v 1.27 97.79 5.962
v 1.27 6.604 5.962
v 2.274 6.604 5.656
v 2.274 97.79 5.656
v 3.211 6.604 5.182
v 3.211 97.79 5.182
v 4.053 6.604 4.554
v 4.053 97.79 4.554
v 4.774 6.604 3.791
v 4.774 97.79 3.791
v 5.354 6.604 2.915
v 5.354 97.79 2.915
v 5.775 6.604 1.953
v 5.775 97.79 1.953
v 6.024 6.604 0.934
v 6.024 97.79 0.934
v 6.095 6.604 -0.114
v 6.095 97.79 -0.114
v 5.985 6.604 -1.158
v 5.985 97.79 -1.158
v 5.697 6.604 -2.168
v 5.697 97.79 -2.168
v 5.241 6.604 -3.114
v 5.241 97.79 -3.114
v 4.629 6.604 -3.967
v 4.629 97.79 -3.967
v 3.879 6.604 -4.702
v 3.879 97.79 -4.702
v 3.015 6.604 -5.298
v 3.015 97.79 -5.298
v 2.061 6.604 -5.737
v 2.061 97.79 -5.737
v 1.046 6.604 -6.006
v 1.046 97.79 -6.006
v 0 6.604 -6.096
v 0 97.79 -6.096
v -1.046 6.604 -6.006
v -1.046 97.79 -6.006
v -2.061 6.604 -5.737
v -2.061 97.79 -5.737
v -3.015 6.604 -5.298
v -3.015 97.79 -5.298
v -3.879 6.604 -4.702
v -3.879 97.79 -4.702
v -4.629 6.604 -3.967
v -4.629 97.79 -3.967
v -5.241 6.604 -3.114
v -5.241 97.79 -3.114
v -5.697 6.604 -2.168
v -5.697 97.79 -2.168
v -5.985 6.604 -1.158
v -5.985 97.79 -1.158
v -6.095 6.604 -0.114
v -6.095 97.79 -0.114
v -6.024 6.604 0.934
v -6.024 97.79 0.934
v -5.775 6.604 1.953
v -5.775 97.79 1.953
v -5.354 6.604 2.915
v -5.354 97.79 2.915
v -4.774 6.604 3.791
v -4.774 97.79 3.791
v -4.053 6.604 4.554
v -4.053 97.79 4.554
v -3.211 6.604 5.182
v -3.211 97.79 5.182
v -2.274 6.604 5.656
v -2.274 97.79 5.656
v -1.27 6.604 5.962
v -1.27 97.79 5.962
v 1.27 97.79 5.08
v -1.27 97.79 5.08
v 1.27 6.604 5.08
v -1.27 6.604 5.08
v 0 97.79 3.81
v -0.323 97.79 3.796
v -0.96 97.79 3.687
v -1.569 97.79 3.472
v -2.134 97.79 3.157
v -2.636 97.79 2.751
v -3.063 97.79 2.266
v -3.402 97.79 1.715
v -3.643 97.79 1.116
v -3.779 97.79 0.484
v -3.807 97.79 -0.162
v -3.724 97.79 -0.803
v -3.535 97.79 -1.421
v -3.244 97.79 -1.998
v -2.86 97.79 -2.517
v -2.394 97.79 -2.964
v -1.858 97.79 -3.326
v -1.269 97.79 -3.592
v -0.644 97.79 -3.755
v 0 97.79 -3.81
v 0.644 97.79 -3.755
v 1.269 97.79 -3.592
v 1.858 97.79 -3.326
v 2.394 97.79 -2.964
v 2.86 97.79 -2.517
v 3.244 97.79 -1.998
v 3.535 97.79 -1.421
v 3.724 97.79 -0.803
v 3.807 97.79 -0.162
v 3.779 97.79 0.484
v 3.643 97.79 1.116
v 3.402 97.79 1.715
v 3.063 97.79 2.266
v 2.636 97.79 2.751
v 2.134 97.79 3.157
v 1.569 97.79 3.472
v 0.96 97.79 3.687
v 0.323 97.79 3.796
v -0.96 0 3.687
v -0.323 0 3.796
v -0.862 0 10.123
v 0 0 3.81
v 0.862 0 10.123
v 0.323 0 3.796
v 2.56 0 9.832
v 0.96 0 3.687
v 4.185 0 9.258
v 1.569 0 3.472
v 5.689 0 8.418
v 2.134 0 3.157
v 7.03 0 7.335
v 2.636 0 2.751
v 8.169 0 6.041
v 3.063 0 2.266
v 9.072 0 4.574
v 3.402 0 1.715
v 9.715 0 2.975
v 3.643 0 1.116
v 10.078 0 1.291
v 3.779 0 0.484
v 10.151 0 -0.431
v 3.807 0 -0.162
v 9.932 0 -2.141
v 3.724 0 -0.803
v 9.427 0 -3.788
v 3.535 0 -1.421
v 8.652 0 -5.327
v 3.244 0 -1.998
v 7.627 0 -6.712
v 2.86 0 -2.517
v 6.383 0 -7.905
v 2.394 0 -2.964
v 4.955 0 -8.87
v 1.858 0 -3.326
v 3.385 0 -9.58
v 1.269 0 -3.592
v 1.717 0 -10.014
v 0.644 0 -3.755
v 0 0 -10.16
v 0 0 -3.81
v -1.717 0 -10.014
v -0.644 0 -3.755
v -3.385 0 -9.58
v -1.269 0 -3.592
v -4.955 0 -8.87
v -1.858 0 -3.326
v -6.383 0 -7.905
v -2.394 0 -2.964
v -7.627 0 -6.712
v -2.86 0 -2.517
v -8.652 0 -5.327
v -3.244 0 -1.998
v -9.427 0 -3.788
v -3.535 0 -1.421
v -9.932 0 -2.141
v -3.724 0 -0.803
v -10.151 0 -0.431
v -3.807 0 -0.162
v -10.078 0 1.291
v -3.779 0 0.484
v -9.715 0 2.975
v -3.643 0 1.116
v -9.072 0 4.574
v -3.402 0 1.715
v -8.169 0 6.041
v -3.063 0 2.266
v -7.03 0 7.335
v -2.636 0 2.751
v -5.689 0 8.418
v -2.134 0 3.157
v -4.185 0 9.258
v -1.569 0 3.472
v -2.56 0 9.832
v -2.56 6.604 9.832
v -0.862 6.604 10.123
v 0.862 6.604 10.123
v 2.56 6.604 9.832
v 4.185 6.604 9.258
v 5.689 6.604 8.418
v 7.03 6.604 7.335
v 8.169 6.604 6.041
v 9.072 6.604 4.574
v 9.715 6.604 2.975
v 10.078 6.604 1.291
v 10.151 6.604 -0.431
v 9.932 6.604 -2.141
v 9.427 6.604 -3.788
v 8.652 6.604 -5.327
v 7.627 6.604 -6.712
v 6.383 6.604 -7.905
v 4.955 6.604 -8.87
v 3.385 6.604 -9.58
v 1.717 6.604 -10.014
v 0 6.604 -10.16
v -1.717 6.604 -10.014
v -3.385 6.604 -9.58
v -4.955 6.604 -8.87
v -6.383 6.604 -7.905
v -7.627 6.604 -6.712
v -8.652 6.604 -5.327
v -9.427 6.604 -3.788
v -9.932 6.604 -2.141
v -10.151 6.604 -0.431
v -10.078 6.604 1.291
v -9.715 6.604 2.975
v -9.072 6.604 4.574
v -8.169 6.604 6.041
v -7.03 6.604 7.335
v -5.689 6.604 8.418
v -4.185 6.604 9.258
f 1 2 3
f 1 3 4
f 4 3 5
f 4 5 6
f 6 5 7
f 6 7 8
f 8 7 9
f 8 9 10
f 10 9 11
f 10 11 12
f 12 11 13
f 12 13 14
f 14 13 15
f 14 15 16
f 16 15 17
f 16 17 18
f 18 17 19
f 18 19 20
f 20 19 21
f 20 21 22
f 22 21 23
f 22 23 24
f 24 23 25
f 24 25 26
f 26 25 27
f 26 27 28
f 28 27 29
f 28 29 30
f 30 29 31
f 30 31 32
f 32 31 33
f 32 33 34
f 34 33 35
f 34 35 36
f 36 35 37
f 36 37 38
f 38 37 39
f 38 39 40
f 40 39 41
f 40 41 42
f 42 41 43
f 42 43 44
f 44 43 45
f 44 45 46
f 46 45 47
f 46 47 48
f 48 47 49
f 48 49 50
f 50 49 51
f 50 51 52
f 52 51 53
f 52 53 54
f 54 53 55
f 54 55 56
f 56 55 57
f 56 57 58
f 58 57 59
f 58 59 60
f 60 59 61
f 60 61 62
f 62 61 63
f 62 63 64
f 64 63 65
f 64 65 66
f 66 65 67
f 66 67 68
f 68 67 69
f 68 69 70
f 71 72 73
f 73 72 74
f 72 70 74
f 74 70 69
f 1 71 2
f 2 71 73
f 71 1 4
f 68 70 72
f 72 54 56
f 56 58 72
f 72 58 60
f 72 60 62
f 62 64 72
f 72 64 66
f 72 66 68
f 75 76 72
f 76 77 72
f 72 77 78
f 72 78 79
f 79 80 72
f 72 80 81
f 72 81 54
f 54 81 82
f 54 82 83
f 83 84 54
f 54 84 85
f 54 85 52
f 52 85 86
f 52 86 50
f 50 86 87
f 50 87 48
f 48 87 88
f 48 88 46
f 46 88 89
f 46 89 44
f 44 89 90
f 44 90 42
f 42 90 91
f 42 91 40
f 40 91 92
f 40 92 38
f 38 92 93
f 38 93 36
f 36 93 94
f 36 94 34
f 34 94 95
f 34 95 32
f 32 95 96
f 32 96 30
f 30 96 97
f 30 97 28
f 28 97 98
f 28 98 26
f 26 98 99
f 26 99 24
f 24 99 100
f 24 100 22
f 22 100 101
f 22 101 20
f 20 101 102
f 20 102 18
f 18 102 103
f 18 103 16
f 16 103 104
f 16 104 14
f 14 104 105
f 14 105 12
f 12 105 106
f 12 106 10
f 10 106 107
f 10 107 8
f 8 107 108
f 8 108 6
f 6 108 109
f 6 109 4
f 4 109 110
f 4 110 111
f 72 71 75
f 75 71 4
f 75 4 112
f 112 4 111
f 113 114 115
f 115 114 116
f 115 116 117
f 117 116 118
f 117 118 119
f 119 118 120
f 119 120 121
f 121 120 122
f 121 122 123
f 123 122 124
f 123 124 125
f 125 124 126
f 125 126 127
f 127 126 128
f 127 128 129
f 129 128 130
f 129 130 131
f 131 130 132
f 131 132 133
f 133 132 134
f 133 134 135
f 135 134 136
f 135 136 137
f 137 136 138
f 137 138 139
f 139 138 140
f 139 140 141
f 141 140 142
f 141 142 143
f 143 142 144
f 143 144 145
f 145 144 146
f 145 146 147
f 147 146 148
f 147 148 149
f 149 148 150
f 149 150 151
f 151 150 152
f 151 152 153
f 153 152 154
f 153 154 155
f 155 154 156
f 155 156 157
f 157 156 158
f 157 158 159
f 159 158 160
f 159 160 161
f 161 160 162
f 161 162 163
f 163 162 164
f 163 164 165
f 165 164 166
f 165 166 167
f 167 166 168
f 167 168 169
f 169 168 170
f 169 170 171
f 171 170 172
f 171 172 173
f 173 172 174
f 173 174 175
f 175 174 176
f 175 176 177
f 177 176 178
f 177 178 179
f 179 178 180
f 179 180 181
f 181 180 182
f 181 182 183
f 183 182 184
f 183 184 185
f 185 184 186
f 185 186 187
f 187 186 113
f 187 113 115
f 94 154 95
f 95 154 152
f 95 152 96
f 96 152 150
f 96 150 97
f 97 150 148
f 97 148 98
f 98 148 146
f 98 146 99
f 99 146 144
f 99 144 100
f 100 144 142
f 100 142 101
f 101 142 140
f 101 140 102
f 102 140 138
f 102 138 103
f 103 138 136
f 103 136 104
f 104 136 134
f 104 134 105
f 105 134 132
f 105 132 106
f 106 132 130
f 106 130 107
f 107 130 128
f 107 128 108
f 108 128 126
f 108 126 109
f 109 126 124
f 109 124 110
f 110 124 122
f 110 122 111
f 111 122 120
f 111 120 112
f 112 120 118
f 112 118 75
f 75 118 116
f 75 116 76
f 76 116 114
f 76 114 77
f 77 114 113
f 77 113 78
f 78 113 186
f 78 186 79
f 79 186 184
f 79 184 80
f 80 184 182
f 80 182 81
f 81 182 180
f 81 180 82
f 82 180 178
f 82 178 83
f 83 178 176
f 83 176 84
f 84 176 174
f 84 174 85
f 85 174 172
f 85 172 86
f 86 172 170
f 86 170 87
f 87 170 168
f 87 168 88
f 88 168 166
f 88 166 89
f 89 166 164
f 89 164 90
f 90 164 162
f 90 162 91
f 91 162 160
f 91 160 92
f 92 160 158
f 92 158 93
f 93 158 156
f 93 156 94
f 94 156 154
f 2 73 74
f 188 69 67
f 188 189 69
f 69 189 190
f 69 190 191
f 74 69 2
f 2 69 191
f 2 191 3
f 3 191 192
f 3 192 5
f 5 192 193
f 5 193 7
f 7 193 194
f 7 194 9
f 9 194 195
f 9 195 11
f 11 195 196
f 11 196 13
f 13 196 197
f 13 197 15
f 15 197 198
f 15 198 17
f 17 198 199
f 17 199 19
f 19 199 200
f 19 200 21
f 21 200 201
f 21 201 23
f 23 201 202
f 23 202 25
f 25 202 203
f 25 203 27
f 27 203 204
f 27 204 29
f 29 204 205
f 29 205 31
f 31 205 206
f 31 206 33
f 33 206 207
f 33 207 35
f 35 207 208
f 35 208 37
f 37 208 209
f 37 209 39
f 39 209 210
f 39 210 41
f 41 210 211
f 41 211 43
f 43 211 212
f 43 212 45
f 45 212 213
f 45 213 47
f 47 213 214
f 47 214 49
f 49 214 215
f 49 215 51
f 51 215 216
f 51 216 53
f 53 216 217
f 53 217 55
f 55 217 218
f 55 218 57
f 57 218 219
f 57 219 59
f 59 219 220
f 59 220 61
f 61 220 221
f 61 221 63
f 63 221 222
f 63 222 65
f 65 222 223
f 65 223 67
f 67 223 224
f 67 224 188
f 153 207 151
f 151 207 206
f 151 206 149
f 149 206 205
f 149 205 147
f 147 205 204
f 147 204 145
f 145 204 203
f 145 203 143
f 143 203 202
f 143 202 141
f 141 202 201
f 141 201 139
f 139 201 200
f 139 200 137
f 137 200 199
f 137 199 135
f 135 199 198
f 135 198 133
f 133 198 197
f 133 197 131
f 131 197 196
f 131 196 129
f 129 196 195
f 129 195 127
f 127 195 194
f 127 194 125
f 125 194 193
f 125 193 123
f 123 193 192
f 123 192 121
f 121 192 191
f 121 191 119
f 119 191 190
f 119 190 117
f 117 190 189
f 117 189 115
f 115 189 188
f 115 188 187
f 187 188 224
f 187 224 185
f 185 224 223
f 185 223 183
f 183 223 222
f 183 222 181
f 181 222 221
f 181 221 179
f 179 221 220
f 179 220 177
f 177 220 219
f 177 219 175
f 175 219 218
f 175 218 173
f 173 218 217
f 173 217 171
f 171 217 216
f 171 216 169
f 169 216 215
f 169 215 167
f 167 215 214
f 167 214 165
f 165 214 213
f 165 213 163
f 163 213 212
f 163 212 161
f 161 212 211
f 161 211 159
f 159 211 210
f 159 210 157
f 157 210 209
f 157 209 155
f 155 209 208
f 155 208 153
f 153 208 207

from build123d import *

# Parameters (mm, degrees)
SKETCH1_R               = 6.096
SKETCH1_R_2             = 3.81
BOSS_EXTRUDE1_DEPTH     = 97.79
SKETCH2_W               = 2.54
SKETCH2_H               = 1.627681679
CUT_EXTRUDE1_DEPTH      = 1
CUT_EXTRUDE1_DEPTH_BACK = 98.79
SKETCH3_R               = 10.16
SKETCH3_R_2             = 3.81
BOSS_EXTRUDE2_DEPTH     = 6.604


with BuildPart() as part:
    # Sketch1 → Boss-Extrude1 (new body)
    with BuildSketch(Plane(origin=(0, 0, 0), x_dir=(1, 0, 0), z_dir=(0, 1, 0))):
        Circle(SKETCH1_R)
        Circle(SKETCH1_R_2, mode=Mode.SUBTRACT)
    extrude(amount=BOSS_EXTRUDE1_DEPTH)

    # Sketch2 → Cut-Extrude1 (cut, two sides)
    with BuildSketch(Plane.XZ) as cut_extrude1_sk:
        with Locations((0, 5.89384084)):
            Rectangle(SKETCH2_W, SKETCH2_H)
    extrude(amount=CUT_EXTRUDE1_DEPTH, mode=Mode.SUBTRACT)
    extrude(cut_extrude1_sk.sketch, amount=-CUT_EXTRUDE1_DEPTH_BACK, mode=Mode.SUBTRACT)

    # Sketch3 → Boss-Extrude2 (add)
    with BuildSketch(Plane.XZ):
        Circle(SKETCH3_R)
        Circle(SKETCH3_R_2, mode=Mode.SUBTRACT)
    extrude(amount=-BOSS_EXTRUDE2_DEPTH)


solid = part.part
